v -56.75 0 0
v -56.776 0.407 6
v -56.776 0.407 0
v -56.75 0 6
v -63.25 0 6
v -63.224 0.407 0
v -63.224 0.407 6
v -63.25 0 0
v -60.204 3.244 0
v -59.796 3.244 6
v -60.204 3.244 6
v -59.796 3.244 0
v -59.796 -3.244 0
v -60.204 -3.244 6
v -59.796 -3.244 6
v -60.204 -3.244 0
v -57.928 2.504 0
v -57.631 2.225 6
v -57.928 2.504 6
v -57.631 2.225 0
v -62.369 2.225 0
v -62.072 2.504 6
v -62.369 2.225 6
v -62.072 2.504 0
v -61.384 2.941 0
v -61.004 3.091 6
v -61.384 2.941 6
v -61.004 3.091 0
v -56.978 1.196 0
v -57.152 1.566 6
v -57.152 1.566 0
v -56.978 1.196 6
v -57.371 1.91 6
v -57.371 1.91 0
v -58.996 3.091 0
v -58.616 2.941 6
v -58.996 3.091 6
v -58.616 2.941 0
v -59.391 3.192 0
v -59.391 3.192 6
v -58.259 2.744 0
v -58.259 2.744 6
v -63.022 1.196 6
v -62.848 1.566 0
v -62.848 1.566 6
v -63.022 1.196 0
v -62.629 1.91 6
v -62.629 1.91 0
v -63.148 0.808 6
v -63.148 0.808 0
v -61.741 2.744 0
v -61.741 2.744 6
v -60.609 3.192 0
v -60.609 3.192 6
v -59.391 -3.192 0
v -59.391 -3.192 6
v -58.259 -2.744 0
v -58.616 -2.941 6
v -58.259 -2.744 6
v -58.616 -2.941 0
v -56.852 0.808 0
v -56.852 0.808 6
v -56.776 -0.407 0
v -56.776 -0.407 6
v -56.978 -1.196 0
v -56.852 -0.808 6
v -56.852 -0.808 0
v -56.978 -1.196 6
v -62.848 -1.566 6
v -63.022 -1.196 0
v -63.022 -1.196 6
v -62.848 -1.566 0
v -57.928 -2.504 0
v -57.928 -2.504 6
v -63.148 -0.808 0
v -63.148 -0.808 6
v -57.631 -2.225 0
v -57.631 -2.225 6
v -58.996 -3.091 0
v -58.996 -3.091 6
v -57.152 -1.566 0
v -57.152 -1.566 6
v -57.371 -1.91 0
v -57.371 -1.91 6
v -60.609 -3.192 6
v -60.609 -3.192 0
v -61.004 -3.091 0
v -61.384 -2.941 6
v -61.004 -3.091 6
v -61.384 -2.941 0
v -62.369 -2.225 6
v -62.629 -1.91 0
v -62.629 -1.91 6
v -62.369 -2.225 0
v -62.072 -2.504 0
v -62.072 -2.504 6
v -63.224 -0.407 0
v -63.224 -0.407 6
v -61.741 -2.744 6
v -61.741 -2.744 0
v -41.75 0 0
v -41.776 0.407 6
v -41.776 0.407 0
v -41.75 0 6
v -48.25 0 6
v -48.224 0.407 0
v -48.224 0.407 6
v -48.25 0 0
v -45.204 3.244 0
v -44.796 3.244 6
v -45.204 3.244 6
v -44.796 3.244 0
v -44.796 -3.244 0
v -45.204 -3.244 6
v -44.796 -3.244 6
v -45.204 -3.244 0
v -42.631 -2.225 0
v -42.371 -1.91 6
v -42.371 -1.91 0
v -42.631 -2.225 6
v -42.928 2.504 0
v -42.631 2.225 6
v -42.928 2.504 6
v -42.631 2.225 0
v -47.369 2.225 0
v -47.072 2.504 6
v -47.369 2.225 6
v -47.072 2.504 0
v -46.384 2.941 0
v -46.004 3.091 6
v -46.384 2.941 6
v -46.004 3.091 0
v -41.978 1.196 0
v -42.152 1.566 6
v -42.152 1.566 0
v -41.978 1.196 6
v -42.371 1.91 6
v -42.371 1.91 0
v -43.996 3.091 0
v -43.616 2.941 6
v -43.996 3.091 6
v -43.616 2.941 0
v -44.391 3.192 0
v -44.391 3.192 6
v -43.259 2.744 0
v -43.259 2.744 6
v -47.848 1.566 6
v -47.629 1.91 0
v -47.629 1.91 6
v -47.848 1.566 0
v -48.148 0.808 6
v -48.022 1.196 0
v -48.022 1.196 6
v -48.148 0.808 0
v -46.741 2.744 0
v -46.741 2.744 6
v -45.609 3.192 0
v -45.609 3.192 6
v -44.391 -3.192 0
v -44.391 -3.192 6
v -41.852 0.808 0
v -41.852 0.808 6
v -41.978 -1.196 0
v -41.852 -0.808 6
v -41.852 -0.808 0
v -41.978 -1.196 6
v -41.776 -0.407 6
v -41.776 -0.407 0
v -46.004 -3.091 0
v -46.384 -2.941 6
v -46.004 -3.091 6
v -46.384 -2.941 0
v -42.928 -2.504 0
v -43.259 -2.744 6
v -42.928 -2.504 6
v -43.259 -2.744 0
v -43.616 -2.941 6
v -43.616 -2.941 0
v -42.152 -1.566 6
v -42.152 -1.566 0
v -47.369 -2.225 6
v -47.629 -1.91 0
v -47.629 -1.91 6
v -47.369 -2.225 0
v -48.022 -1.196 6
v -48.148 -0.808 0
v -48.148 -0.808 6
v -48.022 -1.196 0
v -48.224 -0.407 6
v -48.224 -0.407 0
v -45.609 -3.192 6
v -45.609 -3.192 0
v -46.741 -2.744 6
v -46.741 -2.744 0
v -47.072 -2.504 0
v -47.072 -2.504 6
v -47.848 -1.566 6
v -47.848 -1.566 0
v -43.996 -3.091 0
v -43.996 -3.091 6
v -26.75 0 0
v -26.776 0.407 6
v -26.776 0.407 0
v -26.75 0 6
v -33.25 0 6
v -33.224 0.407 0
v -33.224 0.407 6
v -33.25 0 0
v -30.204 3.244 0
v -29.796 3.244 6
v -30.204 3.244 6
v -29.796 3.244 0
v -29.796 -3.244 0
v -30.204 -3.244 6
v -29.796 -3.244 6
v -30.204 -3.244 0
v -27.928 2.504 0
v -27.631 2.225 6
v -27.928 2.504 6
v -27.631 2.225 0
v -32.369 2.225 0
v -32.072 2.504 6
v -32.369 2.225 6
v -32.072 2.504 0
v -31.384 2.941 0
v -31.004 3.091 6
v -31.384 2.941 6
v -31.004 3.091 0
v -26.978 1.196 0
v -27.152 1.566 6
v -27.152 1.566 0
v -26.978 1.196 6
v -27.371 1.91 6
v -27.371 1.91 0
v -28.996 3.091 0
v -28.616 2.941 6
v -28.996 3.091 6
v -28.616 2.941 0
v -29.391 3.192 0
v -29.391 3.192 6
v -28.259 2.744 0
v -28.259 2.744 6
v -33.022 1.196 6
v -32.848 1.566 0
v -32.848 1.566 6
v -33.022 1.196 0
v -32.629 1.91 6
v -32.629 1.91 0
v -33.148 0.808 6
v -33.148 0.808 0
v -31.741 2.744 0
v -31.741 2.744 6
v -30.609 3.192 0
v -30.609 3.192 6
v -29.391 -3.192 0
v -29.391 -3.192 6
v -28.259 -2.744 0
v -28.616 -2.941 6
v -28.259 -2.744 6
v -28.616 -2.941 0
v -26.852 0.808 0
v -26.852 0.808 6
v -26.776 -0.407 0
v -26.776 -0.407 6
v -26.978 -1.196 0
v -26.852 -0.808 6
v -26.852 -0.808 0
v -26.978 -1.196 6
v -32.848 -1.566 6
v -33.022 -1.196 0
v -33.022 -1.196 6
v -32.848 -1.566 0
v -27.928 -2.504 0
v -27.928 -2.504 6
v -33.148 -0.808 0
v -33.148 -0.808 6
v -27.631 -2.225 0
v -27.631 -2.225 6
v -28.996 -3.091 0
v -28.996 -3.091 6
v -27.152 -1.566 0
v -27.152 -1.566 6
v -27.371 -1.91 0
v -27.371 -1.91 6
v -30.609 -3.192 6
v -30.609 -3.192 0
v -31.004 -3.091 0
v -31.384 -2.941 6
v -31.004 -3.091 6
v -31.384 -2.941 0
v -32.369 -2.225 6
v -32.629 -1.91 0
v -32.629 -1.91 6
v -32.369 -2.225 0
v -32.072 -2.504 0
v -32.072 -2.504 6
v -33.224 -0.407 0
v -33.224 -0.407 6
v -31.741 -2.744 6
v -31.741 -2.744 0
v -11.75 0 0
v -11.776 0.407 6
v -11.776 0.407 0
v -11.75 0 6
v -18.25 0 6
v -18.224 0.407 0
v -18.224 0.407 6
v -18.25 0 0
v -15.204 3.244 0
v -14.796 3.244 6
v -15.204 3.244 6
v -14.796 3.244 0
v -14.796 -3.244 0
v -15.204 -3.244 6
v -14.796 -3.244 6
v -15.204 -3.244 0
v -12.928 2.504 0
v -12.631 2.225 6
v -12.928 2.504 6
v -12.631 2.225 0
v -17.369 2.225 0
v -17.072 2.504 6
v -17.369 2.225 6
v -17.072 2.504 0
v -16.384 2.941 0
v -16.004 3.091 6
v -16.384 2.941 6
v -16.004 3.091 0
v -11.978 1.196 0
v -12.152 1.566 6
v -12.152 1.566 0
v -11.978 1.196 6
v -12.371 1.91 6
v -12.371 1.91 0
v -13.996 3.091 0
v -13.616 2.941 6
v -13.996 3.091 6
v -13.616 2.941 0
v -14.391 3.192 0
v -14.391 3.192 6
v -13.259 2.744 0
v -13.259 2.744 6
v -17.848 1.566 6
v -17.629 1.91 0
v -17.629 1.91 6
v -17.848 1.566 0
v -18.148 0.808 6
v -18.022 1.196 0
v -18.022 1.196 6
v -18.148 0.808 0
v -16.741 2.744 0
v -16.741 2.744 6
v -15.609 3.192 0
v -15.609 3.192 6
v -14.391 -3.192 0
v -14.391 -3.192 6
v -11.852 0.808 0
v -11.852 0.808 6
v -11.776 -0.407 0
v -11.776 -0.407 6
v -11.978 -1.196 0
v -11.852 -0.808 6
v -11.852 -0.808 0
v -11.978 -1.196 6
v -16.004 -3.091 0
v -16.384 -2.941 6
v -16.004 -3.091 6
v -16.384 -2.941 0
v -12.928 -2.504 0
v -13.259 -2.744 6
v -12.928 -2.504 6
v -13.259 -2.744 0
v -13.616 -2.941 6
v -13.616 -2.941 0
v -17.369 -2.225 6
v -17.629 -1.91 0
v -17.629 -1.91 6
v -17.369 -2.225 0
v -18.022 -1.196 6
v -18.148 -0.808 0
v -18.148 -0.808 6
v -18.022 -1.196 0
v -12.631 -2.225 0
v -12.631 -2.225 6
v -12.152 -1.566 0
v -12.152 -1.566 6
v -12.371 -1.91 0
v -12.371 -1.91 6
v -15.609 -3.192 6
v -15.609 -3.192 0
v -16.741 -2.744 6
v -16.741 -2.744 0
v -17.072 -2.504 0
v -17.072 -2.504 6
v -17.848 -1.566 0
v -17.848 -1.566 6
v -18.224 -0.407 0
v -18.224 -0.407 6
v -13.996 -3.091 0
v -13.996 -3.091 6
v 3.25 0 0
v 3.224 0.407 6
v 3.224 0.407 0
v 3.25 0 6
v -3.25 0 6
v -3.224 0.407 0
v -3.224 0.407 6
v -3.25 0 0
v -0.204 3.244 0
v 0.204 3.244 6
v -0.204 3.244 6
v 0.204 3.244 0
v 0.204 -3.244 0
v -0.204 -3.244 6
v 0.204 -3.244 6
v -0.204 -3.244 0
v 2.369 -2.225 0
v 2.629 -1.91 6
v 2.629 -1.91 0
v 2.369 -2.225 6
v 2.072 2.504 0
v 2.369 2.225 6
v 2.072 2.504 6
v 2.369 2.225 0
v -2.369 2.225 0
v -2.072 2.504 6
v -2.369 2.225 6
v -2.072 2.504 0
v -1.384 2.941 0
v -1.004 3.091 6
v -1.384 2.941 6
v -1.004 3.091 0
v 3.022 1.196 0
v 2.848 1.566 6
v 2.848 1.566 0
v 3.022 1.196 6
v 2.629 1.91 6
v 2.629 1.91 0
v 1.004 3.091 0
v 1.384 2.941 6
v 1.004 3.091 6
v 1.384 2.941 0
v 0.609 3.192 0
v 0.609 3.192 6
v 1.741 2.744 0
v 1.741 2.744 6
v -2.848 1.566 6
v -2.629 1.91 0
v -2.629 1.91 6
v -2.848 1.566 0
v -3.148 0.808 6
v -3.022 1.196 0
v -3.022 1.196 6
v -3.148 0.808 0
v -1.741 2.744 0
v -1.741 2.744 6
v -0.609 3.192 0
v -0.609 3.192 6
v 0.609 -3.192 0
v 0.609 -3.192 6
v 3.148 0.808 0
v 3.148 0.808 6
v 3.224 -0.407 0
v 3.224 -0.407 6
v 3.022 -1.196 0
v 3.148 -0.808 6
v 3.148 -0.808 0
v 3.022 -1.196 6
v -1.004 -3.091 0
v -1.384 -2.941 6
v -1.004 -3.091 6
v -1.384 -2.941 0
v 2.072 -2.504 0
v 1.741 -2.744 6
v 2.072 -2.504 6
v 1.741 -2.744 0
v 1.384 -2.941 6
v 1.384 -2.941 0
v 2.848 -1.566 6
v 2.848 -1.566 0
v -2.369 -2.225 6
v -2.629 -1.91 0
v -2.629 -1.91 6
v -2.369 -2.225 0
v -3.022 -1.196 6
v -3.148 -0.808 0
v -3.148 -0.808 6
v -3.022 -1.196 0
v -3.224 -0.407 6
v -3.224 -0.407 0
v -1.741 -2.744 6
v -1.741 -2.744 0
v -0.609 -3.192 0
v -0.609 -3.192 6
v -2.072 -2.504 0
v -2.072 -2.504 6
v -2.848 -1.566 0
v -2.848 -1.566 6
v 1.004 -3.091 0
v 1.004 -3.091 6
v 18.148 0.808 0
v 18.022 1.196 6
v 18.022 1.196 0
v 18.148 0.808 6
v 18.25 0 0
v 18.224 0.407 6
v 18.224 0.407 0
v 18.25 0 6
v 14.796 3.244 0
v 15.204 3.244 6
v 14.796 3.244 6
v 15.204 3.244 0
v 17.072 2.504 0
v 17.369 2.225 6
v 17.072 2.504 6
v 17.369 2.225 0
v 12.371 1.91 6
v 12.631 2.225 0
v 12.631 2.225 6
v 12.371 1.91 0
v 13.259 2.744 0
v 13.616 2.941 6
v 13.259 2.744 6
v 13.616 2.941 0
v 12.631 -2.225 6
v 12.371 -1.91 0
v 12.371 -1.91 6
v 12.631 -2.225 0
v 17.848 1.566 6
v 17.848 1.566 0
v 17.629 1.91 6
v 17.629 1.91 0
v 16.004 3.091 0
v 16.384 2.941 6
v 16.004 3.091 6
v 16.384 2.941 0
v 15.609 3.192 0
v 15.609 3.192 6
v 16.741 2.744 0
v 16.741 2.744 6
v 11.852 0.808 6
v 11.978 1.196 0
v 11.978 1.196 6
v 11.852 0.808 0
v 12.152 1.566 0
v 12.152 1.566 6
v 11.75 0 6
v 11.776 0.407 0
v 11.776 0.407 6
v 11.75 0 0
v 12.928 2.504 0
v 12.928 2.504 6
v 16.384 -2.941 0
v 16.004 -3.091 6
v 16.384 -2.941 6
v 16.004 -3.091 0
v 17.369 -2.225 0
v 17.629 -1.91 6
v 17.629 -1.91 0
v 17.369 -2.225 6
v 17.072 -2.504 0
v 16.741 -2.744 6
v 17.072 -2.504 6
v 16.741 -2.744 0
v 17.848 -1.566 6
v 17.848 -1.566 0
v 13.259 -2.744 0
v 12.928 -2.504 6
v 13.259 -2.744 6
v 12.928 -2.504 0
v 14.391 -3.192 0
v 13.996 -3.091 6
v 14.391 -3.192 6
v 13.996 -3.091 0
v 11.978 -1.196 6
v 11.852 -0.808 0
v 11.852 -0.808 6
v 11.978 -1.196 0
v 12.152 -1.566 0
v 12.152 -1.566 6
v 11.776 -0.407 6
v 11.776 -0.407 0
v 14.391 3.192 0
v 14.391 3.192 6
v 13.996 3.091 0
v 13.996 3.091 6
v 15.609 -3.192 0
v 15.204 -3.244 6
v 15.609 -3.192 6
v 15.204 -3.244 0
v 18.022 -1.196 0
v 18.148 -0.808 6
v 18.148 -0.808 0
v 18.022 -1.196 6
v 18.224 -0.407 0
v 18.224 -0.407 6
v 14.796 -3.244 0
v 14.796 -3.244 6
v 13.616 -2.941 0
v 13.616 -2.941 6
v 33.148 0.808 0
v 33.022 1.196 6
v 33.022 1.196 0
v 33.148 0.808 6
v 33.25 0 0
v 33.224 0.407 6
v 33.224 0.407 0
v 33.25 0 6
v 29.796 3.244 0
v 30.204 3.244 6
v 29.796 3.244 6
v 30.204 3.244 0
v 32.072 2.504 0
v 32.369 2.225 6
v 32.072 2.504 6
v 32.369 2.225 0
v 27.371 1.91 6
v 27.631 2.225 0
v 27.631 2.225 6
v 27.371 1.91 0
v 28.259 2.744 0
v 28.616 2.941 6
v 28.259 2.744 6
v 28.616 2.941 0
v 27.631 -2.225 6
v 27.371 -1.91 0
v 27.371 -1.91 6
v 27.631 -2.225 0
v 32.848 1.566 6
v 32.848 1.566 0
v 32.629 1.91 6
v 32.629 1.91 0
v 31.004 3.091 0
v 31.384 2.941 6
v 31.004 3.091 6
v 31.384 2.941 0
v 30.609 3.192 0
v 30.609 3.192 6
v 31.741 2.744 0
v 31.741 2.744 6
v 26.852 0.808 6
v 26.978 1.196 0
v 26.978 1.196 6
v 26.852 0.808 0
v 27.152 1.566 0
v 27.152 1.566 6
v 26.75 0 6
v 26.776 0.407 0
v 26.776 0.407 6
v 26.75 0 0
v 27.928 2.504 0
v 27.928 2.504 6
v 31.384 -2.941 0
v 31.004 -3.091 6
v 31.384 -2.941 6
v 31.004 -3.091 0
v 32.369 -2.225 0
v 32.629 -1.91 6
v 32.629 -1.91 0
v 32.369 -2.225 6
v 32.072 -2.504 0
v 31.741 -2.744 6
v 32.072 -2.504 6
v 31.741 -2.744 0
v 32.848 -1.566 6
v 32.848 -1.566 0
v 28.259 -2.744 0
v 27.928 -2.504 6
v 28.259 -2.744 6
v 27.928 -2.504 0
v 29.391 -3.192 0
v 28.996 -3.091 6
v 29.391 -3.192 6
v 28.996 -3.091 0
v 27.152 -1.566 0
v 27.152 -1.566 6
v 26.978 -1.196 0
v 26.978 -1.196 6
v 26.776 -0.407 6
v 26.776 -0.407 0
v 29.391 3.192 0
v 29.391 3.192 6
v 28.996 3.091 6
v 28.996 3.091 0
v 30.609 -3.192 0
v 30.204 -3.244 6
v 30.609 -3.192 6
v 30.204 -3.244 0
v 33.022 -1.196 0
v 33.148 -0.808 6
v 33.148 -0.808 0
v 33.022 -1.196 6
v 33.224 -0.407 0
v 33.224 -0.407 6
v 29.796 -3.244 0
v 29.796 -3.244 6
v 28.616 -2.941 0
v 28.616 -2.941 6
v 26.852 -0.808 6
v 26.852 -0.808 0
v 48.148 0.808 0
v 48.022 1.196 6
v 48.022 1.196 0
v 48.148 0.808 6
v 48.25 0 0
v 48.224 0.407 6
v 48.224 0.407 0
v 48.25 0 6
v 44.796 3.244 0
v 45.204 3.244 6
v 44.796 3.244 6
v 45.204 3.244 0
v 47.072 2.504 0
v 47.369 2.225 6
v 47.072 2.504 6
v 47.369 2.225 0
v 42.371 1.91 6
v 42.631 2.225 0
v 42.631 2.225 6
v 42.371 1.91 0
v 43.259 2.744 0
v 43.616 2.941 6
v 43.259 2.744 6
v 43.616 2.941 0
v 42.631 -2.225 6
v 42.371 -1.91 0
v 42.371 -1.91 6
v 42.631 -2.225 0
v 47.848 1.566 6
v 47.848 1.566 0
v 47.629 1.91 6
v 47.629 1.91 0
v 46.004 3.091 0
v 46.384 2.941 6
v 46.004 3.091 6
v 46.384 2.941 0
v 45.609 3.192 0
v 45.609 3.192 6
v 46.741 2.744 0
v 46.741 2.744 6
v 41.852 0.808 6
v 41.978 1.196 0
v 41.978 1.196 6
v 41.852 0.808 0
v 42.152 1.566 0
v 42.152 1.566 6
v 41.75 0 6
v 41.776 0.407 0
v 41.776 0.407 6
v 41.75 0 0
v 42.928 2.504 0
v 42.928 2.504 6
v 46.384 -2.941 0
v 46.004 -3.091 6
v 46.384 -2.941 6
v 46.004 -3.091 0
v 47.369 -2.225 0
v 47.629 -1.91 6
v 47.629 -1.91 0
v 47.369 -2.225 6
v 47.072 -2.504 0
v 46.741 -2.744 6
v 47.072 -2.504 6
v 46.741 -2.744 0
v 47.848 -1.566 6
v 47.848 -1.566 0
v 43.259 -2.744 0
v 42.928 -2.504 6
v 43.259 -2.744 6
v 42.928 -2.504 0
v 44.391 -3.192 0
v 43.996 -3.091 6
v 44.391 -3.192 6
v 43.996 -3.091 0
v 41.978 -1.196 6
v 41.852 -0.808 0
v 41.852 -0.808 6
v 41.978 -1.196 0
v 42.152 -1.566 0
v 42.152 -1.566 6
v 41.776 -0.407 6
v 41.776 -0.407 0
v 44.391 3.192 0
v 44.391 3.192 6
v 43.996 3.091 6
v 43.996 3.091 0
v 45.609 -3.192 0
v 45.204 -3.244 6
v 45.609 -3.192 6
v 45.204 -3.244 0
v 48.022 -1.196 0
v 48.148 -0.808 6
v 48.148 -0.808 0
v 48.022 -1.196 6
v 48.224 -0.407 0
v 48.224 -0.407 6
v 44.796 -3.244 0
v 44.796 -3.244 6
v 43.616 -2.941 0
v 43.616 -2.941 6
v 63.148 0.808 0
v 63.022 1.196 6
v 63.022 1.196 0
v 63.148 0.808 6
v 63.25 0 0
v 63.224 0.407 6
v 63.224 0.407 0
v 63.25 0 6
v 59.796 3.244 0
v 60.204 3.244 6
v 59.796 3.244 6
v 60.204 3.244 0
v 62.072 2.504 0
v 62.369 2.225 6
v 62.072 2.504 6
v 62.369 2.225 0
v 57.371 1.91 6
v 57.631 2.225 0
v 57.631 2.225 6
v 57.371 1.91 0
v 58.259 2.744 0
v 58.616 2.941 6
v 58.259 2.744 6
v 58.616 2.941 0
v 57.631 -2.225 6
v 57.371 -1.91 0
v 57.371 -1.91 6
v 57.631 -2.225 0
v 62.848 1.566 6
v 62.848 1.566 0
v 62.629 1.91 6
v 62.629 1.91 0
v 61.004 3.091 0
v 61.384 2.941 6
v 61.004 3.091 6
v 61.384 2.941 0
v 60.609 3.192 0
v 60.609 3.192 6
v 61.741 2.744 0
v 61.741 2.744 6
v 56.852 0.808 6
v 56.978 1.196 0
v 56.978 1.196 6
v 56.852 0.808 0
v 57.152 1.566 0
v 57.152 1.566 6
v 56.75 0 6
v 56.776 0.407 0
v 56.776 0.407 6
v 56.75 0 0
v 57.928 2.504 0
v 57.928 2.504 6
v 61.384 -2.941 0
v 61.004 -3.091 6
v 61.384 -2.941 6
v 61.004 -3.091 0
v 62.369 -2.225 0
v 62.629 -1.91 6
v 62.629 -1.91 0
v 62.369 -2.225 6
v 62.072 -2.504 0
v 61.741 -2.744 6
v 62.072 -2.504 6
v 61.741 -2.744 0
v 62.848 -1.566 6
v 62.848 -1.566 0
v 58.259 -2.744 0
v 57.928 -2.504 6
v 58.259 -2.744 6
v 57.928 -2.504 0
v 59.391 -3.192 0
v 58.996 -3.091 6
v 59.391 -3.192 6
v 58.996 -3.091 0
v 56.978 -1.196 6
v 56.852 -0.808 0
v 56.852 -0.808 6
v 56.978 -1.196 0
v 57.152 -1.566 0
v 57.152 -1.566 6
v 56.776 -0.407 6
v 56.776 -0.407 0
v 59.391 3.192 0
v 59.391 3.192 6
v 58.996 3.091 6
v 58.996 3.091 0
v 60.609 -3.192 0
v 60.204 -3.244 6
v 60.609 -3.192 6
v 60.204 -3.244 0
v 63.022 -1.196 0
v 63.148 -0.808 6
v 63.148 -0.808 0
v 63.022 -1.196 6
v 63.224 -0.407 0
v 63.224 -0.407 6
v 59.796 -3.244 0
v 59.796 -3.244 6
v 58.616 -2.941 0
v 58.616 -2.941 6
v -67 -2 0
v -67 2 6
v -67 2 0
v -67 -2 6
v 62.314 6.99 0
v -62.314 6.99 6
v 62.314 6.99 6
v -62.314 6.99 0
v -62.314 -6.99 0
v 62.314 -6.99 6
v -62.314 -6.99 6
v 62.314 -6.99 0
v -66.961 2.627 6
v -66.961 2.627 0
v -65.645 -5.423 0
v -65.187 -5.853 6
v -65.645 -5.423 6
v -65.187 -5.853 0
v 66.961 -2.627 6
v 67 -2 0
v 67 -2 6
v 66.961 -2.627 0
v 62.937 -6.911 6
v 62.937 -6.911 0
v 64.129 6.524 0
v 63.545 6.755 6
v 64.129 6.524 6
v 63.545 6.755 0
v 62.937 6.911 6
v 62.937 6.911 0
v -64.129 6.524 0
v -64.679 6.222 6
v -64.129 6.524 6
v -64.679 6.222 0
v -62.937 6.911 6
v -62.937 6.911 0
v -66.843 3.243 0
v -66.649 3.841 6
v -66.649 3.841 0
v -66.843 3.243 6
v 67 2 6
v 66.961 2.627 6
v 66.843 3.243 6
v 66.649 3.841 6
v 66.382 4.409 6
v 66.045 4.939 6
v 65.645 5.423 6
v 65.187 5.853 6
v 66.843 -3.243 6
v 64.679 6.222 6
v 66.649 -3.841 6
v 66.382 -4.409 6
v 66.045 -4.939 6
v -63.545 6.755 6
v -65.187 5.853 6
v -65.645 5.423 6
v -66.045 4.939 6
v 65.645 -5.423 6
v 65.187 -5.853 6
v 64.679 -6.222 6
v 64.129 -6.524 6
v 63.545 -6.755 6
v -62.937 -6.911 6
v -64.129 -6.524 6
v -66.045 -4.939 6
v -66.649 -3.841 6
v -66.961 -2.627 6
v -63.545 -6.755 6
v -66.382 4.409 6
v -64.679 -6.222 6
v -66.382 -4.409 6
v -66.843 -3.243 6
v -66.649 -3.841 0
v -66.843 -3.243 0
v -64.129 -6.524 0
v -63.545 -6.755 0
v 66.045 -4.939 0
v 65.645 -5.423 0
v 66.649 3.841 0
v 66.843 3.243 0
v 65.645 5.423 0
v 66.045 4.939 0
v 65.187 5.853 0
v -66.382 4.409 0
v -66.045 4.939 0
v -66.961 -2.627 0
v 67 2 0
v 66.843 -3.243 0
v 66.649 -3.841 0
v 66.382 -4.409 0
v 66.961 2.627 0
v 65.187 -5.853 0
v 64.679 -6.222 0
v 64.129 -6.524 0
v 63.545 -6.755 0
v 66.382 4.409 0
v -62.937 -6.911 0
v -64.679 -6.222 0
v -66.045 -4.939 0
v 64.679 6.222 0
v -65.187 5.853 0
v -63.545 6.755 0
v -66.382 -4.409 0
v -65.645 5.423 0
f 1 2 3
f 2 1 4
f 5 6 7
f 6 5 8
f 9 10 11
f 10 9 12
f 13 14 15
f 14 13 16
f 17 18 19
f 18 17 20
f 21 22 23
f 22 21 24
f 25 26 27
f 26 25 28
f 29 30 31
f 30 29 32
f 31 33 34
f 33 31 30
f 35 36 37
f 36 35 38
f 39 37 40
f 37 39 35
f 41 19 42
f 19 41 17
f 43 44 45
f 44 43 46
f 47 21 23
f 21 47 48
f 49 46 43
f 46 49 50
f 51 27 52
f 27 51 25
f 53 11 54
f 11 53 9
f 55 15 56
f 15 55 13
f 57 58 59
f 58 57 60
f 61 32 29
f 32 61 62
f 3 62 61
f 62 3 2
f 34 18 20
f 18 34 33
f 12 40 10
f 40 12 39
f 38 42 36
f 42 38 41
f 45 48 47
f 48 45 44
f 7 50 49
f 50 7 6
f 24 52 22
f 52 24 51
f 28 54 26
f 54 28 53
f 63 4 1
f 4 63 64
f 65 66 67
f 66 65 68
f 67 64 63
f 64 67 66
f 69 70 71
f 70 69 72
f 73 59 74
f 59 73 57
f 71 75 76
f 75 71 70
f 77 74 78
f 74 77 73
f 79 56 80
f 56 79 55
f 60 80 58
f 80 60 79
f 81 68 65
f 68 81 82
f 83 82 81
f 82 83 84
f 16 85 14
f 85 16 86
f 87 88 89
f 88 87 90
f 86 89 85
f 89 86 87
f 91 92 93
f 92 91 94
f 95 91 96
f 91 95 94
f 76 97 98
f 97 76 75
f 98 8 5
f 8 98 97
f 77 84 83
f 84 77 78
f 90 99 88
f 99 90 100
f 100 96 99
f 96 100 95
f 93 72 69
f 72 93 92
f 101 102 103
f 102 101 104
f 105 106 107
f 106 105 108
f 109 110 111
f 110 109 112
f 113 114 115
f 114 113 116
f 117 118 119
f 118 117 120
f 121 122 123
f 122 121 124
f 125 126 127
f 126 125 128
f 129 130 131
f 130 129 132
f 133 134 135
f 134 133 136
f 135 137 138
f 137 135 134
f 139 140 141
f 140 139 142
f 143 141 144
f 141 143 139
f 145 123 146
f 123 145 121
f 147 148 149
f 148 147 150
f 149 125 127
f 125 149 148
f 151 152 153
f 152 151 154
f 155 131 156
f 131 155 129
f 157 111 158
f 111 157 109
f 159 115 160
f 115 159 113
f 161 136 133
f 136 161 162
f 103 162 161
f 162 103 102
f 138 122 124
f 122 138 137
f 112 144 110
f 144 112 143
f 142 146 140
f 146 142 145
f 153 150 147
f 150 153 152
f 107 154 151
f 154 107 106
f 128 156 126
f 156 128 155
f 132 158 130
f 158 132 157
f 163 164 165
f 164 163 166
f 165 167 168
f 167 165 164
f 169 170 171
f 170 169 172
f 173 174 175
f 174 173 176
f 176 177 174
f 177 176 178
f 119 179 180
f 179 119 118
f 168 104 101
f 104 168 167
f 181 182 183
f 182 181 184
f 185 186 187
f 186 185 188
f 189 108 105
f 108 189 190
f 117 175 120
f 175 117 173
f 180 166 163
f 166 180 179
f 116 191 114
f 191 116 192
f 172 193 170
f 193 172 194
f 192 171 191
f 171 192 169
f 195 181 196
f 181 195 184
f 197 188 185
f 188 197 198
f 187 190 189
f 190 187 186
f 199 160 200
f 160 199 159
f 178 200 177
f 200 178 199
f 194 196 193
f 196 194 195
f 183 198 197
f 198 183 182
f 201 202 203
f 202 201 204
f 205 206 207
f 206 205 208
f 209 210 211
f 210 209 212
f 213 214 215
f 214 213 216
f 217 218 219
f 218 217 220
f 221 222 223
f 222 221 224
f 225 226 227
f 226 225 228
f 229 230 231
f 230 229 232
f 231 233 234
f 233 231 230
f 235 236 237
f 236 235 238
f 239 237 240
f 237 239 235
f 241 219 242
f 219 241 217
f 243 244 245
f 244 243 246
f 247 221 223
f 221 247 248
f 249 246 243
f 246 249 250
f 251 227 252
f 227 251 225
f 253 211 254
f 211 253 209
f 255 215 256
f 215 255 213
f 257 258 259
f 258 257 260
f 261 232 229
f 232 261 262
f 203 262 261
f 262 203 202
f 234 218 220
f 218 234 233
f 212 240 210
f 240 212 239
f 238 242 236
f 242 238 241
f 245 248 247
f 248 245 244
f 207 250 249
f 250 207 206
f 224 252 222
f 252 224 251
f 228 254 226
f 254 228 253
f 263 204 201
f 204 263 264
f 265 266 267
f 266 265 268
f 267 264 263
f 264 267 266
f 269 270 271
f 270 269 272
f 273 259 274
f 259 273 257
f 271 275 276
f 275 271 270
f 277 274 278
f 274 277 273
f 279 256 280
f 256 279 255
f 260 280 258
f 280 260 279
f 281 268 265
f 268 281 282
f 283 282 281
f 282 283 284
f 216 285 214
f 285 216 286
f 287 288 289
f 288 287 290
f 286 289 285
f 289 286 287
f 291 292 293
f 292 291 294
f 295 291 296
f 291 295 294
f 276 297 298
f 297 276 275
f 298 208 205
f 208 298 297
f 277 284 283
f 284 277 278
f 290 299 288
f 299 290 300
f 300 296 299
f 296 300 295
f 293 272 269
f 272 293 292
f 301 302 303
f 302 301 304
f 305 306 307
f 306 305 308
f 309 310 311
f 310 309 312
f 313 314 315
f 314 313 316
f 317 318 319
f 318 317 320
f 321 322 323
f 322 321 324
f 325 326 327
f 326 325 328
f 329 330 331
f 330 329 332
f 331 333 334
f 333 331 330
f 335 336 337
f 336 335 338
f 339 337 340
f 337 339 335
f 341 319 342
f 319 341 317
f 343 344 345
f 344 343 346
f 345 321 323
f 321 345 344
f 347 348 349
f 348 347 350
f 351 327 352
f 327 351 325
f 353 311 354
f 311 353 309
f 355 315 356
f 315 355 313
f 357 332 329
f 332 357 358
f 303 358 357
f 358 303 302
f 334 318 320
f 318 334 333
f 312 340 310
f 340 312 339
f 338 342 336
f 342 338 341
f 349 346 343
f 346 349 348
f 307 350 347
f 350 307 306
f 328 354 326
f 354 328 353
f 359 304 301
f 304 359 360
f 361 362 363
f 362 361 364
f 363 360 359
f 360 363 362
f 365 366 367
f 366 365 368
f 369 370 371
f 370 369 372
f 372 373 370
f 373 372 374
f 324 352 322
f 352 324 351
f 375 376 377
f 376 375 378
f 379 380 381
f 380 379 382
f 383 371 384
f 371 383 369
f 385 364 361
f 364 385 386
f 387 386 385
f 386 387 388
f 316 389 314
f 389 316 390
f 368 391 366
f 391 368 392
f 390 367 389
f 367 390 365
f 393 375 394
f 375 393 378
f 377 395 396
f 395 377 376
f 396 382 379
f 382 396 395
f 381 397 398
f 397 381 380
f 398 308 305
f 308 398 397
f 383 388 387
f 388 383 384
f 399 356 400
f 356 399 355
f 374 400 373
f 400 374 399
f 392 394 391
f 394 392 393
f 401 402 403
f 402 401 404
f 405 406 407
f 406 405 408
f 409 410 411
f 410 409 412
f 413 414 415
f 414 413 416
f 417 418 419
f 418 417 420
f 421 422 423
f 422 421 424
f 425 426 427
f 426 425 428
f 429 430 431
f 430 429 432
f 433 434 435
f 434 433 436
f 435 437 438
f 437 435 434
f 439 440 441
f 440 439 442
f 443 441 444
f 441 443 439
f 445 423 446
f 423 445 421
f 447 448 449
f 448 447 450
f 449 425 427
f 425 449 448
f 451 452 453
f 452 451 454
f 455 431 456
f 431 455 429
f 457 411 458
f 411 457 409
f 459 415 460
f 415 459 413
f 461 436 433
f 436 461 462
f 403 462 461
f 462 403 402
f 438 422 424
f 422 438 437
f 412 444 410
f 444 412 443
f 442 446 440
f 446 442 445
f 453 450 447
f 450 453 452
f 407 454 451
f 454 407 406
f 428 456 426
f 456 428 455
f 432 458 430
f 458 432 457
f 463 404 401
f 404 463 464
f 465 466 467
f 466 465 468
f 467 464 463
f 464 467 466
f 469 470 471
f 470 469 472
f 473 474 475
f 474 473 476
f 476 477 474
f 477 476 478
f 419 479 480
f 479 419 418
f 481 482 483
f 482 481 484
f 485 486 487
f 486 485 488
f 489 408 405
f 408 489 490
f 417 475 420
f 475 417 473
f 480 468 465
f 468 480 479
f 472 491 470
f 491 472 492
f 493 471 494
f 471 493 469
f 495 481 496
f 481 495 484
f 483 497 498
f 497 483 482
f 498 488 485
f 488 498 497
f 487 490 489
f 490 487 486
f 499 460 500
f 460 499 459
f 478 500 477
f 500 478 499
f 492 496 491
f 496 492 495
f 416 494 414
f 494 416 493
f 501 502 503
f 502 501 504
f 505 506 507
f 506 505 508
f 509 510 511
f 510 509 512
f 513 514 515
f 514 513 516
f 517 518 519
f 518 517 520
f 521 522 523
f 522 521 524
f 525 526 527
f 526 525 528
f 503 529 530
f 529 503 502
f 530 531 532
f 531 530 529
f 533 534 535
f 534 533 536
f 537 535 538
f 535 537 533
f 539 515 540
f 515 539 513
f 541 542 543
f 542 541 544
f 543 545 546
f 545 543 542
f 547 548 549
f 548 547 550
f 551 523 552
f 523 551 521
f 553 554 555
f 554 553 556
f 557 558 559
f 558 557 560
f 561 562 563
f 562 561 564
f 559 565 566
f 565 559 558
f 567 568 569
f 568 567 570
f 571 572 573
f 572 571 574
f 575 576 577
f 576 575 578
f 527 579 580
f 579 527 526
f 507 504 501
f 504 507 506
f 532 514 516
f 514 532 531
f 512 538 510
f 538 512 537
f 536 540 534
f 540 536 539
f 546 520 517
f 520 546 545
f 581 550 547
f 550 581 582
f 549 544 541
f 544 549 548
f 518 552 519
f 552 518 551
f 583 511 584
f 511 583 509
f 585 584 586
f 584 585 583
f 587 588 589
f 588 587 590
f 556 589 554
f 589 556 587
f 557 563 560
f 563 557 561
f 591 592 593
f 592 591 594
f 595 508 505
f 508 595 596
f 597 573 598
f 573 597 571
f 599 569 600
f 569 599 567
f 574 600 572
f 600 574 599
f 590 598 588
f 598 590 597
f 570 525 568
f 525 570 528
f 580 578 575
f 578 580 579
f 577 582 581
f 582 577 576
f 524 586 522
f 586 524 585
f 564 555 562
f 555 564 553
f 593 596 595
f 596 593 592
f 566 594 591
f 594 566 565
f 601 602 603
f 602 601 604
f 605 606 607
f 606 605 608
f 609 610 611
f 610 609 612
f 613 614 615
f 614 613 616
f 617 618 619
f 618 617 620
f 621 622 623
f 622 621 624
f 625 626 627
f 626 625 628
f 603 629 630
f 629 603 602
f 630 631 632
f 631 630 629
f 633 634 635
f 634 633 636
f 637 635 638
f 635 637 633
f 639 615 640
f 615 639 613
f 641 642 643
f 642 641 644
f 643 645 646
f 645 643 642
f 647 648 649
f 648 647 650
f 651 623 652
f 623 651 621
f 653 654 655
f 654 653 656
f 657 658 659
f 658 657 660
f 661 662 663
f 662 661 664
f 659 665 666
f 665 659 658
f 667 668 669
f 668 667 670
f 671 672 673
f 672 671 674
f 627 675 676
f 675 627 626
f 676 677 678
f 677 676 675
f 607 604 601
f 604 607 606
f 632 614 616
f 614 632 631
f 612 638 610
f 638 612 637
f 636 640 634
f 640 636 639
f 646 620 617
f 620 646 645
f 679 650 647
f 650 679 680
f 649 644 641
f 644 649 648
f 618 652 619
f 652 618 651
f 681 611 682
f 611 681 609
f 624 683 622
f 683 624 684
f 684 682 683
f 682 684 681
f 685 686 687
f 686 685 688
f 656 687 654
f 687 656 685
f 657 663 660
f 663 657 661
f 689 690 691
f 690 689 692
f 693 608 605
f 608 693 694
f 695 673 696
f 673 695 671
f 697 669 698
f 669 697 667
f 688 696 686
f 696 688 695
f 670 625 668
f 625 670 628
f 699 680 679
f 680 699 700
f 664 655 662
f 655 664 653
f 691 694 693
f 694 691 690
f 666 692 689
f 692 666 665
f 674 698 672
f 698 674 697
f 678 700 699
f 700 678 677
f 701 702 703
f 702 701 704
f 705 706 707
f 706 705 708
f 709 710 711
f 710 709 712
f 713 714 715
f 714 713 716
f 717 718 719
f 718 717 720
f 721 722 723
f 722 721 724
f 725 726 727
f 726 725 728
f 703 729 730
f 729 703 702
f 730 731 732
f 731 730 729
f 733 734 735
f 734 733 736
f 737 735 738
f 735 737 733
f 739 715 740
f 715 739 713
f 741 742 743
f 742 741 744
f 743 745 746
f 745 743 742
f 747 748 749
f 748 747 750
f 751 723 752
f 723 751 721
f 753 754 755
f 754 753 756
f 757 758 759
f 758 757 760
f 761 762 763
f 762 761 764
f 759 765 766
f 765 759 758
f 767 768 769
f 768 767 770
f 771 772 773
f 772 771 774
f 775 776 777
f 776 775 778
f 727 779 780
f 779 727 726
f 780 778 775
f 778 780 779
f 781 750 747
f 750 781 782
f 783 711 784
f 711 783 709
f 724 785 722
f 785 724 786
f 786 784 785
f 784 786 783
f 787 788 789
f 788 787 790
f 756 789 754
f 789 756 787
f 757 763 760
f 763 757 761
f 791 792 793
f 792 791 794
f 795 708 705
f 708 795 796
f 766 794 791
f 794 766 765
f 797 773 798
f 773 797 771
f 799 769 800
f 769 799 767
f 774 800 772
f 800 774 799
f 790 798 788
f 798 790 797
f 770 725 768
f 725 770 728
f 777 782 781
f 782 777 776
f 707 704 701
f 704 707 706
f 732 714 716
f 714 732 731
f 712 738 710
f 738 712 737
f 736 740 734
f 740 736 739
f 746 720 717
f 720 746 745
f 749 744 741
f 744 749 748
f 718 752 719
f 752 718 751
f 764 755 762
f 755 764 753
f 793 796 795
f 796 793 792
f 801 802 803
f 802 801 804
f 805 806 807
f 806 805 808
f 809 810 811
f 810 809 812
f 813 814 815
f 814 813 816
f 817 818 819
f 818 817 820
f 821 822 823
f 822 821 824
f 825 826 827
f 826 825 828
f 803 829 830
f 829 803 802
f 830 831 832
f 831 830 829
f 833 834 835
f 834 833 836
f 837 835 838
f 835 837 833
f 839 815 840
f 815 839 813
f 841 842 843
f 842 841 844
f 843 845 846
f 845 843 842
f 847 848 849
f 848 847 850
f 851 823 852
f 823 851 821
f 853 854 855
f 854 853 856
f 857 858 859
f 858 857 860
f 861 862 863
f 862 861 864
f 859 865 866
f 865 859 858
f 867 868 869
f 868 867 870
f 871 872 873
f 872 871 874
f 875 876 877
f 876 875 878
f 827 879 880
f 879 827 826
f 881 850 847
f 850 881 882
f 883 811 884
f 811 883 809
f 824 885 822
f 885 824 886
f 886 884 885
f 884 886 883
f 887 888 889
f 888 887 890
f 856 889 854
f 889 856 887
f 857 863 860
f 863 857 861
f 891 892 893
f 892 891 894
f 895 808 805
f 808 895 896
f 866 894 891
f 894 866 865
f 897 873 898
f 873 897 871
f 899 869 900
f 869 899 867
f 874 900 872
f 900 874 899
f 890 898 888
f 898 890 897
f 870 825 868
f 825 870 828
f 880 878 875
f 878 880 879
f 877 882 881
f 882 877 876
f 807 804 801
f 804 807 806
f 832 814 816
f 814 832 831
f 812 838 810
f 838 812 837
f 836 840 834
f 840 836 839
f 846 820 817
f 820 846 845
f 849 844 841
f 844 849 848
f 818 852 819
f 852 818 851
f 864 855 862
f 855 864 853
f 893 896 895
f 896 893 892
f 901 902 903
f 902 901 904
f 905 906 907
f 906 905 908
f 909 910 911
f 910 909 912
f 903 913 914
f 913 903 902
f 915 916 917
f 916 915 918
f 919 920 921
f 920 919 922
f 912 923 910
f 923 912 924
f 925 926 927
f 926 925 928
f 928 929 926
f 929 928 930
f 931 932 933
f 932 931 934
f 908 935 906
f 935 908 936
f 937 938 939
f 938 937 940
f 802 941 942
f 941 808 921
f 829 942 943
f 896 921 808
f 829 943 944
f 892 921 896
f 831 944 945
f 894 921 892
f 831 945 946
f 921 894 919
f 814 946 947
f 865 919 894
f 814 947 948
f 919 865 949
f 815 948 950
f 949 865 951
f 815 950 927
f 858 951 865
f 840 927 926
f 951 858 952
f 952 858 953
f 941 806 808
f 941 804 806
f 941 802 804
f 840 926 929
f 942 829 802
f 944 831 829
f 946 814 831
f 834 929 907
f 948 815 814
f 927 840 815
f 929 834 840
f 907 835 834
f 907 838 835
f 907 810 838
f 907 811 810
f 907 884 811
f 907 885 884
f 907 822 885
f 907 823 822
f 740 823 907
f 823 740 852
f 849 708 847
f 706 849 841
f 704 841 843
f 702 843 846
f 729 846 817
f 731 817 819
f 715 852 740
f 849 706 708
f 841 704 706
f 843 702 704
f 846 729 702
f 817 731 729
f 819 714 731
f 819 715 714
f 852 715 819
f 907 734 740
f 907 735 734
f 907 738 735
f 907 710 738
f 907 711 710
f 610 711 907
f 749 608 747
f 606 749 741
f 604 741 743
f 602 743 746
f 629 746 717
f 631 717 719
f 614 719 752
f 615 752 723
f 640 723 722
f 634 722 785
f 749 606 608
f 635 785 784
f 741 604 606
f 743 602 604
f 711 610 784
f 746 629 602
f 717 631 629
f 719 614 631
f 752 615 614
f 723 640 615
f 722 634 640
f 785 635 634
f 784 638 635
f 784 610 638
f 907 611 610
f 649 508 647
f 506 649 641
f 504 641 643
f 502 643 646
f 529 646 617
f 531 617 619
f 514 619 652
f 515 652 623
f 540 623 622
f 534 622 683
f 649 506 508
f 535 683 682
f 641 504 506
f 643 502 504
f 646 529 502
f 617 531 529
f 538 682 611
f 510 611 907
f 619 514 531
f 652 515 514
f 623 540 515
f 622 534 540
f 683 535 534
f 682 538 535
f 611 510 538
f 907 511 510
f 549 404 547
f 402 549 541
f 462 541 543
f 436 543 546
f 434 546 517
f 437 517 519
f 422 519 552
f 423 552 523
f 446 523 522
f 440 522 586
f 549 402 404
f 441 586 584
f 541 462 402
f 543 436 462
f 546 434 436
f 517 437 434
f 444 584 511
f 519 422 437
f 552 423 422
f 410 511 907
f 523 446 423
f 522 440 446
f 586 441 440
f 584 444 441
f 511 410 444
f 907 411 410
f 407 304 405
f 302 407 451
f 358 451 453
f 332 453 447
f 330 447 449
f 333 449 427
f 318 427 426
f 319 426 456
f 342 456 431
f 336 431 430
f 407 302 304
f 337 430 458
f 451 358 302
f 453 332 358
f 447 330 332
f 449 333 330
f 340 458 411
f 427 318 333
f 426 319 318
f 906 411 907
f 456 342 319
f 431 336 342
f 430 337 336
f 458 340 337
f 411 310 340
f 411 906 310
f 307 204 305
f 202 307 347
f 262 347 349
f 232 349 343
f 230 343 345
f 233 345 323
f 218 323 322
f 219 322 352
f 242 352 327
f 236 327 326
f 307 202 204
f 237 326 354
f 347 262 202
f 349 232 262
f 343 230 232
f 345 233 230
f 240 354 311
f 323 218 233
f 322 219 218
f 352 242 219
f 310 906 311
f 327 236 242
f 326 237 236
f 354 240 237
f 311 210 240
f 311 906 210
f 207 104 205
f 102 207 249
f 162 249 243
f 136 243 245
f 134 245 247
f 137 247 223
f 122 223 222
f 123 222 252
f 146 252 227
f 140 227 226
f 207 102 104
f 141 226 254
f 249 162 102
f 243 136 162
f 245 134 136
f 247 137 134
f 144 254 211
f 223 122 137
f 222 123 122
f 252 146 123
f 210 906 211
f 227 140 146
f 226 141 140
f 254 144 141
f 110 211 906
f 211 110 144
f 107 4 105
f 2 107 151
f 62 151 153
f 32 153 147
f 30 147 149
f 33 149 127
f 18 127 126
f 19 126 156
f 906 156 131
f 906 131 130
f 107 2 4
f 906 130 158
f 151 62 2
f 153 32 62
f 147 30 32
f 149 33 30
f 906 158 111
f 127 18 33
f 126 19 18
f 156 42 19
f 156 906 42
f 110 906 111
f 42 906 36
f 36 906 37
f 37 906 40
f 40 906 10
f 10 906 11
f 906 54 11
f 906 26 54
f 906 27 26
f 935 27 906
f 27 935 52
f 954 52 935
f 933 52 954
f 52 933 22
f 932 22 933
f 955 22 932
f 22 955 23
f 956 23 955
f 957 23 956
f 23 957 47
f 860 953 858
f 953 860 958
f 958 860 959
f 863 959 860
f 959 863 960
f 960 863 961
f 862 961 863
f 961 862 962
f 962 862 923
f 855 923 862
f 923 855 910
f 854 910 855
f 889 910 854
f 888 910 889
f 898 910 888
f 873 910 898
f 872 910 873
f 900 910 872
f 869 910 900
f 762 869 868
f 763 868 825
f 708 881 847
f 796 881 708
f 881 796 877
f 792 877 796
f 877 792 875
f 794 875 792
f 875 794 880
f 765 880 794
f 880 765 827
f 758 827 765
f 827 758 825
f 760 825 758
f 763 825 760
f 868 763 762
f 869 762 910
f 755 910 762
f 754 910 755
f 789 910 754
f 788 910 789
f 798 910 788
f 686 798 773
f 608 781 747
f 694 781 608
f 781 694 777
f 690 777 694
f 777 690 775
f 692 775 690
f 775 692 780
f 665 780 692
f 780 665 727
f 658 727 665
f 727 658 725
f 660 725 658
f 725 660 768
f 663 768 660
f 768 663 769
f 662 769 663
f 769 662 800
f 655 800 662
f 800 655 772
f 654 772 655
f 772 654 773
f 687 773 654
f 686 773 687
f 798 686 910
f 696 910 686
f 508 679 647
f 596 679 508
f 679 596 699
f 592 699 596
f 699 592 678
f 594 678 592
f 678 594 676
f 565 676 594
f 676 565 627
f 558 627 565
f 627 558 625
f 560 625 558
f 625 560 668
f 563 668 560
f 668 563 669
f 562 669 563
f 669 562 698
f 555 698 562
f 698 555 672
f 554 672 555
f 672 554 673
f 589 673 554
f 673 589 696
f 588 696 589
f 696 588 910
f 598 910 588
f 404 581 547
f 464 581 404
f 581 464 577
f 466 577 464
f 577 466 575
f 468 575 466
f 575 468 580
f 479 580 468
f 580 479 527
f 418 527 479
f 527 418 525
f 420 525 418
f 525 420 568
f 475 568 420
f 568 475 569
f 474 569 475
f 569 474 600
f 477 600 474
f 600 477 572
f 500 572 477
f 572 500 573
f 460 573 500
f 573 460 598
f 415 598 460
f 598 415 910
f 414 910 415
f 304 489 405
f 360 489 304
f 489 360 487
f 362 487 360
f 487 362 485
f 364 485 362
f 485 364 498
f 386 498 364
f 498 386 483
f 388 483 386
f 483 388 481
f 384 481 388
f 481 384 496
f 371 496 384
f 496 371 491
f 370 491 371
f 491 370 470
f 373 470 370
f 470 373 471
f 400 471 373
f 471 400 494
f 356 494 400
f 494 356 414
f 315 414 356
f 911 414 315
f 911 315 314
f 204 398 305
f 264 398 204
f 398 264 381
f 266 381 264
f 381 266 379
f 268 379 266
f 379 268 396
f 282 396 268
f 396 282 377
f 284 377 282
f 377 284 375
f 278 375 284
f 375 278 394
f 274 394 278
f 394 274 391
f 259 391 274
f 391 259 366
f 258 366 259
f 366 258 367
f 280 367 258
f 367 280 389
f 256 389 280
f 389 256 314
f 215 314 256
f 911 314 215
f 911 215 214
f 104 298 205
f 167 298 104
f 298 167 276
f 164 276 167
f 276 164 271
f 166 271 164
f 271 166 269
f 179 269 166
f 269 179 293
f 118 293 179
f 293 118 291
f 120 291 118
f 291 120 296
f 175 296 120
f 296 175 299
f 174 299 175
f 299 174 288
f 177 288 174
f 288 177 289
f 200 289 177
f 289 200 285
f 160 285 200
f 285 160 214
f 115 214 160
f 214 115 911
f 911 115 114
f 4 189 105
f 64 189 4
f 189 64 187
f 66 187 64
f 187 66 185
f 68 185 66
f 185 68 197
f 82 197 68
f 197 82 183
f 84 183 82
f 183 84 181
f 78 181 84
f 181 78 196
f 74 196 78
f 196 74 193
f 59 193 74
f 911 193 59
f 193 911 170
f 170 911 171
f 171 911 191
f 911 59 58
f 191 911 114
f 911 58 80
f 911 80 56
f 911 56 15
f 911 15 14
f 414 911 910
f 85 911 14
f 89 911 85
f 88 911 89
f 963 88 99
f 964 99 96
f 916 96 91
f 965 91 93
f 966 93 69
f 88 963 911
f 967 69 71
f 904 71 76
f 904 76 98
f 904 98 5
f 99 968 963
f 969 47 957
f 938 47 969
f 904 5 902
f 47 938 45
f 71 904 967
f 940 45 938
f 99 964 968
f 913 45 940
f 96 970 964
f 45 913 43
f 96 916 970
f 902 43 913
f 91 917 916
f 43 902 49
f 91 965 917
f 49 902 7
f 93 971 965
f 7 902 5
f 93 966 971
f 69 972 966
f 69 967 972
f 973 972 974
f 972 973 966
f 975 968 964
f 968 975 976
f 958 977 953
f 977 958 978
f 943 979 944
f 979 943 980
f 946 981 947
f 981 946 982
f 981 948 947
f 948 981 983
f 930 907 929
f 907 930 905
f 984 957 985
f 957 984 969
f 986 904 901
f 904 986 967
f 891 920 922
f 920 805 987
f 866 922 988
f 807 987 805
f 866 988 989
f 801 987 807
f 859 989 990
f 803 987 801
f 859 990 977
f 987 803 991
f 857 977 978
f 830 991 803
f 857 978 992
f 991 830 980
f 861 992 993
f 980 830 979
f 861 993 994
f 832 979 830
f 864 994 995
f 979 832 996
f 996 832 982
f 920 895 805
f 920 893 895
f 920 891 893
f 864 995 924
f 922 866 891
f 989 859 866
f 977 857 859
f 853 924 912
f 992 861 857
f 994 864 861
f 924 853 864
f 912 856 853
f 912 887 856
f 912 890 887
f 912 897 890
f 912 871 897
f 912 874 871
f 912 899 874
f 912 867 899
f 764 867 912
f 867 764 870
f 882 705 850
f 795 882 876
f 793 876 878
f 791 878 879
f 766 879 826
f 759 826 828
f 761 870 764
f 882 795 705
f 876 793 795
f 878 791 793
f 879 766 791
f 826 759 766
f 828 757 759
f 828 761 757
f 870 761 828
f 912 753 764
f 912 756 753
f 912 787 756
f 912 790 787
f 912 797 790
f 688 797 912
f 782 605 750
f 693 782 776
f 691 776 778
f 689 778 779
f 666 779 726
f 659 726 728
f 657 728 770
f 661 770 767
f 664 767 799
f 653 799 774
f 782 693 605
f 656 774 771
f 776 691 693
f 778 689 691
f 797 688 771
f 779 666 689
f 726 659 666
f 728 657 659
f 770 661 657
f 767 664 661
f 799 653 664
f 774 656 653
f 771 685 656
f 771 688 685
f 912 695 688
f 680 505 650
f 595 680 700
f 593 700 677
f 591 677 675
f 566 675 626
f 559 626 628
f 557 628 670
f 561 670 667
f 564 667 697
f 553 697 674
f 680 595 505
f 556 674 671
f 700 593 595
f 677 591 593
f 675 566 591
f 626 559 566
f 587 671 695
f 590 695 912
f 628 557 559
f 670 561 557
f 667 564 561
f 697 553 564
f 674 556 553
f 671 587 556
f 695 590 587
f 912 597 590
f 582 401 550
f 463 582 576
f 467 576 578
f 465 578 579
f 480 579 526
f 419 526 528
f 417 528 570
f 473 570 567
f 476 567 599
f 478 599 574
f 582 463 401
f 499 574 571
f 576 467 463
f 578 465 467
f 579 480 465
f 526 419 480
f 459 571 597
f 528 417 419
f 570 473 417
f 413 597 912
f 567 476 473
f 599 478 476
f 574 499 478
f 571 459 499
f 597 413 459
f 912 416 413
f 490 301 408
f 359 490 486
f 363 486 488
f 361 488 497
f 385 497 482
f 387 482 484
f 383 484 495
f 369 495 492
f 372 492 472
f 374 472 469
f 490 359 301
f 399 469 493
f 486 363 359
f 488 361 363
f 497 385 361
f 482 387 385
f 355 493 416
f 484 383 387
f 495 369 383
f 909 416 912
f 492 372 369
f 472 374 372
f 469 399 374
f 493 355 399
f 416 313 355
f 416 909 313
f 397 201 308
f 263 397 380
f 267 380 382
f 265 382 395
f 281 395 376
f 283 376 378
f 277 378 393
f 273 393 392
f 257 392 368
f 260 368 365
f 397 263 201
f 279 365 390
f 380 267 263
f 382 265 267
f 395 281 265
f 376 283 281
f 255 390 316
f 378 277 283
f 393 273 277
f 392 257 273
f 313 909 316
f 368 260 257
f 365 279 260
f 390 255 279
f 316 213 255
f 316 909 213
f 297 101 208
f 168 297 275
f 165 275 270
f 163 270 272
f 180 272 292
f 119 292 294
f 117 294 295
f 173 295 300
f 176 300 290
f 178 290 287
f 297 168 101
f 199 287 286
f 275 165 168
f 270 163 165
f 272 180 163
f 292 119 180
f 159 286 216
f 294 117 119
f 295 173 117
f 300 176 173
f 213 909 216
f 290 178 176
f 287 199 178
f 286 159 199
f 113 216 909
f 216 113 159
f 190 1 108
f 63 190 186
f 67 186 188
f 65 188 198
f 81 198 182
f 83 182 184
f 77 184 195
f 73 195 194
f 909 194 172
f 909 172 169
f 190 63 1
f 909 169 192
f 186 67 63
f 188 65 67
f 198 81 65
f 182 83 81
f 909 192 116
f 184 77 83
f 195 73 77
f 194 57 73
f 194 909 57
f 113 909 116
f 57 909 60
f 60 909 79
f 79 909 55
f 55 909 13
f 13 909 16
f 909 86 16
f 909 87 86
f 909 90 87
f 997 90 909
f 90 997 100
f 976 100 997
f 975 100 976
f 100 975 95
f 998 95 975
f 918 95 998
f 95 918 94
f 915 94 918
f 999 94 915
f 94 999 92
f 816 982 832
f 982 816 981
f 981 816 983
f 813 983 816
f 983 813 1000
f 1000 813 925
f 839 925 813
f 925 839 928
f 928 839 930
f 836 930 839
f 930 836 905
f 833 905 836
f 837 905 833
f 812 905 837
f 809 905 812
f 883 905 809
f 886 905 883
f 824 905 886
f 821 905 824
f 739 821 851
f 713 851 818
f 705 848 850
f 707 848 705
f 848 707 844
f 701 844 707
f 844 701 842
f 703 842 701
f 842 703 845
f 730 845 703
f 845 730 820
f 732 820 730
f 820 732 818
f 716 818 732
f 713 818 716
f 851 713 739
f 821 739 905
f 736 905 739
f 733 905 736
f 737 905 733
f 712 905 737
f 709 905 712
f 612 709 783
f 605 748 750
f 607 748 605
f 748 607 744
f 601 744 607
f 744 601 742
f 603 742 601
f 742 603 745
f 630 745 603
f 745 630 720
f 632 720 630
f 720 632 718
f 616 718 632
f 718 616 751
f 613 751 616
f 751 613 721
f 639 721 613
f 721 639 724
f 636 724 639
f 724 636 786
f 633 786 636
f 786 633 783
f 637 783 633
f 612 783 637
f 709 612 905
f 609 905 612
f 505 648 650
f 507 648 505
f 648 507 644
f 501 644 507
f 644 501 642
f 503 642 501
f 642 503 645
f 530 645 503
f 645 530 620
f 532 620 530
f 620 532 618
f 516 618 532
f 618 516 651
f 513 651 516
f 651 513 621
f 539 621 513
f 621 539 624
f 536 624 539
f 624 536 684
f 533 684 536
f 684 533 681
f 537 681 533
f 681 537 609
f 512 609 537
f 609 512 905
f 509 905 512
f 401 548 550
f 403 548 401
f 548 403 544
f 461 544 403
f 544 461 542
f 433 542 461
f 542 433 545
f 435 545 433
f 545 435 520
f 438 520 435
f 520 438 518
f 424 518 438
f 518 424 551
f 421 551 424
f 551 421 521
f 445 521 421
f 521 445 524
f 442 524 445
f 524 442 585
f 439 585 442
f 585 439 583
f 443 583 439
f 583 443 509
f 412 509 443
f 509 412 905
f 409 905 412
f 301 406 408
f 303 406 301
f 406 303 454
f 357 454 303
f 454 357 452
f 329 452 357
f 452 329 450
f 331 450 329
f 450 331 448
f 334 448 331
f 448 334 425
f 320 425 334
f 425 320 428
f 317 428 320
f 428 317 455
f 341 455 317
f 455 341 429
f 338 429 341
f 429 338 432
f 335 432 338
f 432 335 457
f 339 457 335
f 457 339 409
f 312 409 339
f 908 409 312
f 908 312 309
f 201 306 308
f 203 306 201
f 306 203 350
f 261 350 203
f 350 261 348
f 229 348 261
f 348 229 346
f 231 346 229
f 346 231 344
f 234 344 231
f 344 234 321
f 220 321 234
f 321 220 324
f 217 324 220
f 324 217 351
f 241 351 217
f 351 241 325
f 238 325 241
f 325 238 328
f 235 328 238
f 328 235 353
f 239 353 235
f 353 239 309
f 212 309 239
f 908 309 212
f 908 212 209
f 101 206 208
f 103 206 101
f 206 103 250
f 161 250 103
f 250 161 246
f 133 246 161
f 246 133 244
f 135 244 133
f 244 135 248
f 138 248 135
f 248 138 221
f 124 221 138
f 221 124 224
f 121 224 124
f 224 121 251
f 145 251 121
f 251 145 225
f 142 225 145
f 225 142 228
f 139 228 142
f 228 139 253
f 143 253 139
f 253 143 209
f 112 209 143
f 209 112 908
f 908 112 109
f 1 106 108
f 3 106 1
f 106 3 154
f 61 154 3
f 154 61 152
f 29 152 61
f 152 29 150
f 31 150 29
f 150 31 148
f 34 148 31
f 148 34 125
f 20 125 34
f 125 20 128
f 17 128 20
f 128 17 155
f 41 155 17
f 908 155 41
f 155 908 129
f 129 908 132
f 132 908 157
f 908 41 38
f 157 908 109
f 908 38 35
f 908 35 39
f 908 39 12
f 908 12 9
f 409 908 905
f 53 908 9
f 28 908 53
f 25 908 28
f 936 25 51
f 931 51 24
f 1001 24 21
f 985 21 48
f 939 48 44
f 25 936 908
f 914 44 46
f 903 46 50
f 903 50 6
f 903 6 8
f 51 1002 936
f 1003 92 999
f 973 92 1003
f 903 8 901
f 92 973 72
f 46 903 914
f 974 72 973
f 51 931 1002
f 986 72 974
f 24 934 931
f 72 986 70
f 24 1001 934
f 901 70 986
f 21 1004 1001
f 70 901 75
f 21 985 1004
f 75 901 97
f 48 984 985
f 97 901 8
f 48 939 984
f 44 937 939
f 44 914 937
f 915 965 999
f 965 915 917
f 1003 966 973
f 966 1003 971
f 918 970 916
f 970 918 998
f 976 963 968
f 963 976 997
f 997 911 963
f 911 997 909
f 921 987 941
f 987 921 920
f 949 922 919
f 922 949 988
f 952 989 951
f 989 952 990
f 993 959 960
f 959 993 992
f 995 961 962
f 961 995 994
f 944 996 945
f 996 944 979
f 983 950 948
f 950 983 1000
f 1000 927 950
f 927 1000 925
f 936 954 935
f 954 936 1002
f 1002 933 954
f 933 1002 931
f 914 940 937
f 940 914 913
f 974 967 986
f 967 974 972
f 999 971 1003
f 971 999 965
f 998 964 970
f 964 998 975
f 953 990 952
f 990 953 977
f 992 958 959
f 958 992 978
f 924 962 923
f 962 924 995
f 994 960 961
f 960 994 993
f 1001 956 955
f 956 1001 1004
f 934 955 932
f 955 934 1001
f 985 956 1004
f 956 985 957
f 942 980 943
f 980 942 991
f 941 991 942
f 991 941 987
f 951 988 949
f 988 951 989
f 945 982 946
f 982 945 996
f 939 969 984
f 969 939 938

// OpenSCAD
$fn = 50;


difference() {
	union() {
		hull() {
			translate(v = [-62.0000000000, 2.0000000000, 0]) {
				cylinder(h = 6, r = 5);
			}
			translate(v = [62.0000000000, 2.0000000000, 0]) {
				cylinder(h = 6, r = 5);
			}
			translate(v = [-62.0000000000, -2.0000000000, 0]) {
				cylinder(h = 6, r = 5);
			}
			translate(v = [62.0000000000, -2.0000000000, 0]) {
				cylinder(h = 6, r = 5);
			}
		}
	}
	union() {
		translate(v = [-60.0000000000, 0.0000000000, -100.0000000000]) {
			cylinder(h = 200, r = 3.2500000000);
		}
		translate(v = [-45.0000000000, 0.0000000000, -100.0000000000]) {
			cylinder(h = 200, r = 3.2500000000);
		}
		translate(v = [-30.0000000000, 0.0000000000, -100.0000000000]) {
			cylinder(h = 200, r = 3.2500000000);
		}
		translate(v = [-15.0000000000, 0.0000000000, -100.0000000000]) {
			cylinder(h = 200, r = 3.2500000000);
		}
		translate(v = [0.0000000000, 0.0000000000, -100.0000000000]) {
			cylinder(h = 200, r = 3.2500000000);
		}
		translate(v = [15.0000000000, 0.0000000000, -100.0000000000]) {
			cylinder(h = 200, r = 3.2500000000);
		}
		translate(v = [30.0000000000, 0.0000000000, -100.0000000000]) {
			cylinder(h = 200, r = 3.2500000000);
		}
		translate(v = [45.0000000000, 0.0000000000, -100.0000000000]) {
			cylinder(h = 200, r = 3.2500000000);
		}
		translate(v = [60.0000000000, 0.0000000000, -100.0000000000]) {
			cylinder(h = 200, r = 3.2500000000);
		}
	}
}
